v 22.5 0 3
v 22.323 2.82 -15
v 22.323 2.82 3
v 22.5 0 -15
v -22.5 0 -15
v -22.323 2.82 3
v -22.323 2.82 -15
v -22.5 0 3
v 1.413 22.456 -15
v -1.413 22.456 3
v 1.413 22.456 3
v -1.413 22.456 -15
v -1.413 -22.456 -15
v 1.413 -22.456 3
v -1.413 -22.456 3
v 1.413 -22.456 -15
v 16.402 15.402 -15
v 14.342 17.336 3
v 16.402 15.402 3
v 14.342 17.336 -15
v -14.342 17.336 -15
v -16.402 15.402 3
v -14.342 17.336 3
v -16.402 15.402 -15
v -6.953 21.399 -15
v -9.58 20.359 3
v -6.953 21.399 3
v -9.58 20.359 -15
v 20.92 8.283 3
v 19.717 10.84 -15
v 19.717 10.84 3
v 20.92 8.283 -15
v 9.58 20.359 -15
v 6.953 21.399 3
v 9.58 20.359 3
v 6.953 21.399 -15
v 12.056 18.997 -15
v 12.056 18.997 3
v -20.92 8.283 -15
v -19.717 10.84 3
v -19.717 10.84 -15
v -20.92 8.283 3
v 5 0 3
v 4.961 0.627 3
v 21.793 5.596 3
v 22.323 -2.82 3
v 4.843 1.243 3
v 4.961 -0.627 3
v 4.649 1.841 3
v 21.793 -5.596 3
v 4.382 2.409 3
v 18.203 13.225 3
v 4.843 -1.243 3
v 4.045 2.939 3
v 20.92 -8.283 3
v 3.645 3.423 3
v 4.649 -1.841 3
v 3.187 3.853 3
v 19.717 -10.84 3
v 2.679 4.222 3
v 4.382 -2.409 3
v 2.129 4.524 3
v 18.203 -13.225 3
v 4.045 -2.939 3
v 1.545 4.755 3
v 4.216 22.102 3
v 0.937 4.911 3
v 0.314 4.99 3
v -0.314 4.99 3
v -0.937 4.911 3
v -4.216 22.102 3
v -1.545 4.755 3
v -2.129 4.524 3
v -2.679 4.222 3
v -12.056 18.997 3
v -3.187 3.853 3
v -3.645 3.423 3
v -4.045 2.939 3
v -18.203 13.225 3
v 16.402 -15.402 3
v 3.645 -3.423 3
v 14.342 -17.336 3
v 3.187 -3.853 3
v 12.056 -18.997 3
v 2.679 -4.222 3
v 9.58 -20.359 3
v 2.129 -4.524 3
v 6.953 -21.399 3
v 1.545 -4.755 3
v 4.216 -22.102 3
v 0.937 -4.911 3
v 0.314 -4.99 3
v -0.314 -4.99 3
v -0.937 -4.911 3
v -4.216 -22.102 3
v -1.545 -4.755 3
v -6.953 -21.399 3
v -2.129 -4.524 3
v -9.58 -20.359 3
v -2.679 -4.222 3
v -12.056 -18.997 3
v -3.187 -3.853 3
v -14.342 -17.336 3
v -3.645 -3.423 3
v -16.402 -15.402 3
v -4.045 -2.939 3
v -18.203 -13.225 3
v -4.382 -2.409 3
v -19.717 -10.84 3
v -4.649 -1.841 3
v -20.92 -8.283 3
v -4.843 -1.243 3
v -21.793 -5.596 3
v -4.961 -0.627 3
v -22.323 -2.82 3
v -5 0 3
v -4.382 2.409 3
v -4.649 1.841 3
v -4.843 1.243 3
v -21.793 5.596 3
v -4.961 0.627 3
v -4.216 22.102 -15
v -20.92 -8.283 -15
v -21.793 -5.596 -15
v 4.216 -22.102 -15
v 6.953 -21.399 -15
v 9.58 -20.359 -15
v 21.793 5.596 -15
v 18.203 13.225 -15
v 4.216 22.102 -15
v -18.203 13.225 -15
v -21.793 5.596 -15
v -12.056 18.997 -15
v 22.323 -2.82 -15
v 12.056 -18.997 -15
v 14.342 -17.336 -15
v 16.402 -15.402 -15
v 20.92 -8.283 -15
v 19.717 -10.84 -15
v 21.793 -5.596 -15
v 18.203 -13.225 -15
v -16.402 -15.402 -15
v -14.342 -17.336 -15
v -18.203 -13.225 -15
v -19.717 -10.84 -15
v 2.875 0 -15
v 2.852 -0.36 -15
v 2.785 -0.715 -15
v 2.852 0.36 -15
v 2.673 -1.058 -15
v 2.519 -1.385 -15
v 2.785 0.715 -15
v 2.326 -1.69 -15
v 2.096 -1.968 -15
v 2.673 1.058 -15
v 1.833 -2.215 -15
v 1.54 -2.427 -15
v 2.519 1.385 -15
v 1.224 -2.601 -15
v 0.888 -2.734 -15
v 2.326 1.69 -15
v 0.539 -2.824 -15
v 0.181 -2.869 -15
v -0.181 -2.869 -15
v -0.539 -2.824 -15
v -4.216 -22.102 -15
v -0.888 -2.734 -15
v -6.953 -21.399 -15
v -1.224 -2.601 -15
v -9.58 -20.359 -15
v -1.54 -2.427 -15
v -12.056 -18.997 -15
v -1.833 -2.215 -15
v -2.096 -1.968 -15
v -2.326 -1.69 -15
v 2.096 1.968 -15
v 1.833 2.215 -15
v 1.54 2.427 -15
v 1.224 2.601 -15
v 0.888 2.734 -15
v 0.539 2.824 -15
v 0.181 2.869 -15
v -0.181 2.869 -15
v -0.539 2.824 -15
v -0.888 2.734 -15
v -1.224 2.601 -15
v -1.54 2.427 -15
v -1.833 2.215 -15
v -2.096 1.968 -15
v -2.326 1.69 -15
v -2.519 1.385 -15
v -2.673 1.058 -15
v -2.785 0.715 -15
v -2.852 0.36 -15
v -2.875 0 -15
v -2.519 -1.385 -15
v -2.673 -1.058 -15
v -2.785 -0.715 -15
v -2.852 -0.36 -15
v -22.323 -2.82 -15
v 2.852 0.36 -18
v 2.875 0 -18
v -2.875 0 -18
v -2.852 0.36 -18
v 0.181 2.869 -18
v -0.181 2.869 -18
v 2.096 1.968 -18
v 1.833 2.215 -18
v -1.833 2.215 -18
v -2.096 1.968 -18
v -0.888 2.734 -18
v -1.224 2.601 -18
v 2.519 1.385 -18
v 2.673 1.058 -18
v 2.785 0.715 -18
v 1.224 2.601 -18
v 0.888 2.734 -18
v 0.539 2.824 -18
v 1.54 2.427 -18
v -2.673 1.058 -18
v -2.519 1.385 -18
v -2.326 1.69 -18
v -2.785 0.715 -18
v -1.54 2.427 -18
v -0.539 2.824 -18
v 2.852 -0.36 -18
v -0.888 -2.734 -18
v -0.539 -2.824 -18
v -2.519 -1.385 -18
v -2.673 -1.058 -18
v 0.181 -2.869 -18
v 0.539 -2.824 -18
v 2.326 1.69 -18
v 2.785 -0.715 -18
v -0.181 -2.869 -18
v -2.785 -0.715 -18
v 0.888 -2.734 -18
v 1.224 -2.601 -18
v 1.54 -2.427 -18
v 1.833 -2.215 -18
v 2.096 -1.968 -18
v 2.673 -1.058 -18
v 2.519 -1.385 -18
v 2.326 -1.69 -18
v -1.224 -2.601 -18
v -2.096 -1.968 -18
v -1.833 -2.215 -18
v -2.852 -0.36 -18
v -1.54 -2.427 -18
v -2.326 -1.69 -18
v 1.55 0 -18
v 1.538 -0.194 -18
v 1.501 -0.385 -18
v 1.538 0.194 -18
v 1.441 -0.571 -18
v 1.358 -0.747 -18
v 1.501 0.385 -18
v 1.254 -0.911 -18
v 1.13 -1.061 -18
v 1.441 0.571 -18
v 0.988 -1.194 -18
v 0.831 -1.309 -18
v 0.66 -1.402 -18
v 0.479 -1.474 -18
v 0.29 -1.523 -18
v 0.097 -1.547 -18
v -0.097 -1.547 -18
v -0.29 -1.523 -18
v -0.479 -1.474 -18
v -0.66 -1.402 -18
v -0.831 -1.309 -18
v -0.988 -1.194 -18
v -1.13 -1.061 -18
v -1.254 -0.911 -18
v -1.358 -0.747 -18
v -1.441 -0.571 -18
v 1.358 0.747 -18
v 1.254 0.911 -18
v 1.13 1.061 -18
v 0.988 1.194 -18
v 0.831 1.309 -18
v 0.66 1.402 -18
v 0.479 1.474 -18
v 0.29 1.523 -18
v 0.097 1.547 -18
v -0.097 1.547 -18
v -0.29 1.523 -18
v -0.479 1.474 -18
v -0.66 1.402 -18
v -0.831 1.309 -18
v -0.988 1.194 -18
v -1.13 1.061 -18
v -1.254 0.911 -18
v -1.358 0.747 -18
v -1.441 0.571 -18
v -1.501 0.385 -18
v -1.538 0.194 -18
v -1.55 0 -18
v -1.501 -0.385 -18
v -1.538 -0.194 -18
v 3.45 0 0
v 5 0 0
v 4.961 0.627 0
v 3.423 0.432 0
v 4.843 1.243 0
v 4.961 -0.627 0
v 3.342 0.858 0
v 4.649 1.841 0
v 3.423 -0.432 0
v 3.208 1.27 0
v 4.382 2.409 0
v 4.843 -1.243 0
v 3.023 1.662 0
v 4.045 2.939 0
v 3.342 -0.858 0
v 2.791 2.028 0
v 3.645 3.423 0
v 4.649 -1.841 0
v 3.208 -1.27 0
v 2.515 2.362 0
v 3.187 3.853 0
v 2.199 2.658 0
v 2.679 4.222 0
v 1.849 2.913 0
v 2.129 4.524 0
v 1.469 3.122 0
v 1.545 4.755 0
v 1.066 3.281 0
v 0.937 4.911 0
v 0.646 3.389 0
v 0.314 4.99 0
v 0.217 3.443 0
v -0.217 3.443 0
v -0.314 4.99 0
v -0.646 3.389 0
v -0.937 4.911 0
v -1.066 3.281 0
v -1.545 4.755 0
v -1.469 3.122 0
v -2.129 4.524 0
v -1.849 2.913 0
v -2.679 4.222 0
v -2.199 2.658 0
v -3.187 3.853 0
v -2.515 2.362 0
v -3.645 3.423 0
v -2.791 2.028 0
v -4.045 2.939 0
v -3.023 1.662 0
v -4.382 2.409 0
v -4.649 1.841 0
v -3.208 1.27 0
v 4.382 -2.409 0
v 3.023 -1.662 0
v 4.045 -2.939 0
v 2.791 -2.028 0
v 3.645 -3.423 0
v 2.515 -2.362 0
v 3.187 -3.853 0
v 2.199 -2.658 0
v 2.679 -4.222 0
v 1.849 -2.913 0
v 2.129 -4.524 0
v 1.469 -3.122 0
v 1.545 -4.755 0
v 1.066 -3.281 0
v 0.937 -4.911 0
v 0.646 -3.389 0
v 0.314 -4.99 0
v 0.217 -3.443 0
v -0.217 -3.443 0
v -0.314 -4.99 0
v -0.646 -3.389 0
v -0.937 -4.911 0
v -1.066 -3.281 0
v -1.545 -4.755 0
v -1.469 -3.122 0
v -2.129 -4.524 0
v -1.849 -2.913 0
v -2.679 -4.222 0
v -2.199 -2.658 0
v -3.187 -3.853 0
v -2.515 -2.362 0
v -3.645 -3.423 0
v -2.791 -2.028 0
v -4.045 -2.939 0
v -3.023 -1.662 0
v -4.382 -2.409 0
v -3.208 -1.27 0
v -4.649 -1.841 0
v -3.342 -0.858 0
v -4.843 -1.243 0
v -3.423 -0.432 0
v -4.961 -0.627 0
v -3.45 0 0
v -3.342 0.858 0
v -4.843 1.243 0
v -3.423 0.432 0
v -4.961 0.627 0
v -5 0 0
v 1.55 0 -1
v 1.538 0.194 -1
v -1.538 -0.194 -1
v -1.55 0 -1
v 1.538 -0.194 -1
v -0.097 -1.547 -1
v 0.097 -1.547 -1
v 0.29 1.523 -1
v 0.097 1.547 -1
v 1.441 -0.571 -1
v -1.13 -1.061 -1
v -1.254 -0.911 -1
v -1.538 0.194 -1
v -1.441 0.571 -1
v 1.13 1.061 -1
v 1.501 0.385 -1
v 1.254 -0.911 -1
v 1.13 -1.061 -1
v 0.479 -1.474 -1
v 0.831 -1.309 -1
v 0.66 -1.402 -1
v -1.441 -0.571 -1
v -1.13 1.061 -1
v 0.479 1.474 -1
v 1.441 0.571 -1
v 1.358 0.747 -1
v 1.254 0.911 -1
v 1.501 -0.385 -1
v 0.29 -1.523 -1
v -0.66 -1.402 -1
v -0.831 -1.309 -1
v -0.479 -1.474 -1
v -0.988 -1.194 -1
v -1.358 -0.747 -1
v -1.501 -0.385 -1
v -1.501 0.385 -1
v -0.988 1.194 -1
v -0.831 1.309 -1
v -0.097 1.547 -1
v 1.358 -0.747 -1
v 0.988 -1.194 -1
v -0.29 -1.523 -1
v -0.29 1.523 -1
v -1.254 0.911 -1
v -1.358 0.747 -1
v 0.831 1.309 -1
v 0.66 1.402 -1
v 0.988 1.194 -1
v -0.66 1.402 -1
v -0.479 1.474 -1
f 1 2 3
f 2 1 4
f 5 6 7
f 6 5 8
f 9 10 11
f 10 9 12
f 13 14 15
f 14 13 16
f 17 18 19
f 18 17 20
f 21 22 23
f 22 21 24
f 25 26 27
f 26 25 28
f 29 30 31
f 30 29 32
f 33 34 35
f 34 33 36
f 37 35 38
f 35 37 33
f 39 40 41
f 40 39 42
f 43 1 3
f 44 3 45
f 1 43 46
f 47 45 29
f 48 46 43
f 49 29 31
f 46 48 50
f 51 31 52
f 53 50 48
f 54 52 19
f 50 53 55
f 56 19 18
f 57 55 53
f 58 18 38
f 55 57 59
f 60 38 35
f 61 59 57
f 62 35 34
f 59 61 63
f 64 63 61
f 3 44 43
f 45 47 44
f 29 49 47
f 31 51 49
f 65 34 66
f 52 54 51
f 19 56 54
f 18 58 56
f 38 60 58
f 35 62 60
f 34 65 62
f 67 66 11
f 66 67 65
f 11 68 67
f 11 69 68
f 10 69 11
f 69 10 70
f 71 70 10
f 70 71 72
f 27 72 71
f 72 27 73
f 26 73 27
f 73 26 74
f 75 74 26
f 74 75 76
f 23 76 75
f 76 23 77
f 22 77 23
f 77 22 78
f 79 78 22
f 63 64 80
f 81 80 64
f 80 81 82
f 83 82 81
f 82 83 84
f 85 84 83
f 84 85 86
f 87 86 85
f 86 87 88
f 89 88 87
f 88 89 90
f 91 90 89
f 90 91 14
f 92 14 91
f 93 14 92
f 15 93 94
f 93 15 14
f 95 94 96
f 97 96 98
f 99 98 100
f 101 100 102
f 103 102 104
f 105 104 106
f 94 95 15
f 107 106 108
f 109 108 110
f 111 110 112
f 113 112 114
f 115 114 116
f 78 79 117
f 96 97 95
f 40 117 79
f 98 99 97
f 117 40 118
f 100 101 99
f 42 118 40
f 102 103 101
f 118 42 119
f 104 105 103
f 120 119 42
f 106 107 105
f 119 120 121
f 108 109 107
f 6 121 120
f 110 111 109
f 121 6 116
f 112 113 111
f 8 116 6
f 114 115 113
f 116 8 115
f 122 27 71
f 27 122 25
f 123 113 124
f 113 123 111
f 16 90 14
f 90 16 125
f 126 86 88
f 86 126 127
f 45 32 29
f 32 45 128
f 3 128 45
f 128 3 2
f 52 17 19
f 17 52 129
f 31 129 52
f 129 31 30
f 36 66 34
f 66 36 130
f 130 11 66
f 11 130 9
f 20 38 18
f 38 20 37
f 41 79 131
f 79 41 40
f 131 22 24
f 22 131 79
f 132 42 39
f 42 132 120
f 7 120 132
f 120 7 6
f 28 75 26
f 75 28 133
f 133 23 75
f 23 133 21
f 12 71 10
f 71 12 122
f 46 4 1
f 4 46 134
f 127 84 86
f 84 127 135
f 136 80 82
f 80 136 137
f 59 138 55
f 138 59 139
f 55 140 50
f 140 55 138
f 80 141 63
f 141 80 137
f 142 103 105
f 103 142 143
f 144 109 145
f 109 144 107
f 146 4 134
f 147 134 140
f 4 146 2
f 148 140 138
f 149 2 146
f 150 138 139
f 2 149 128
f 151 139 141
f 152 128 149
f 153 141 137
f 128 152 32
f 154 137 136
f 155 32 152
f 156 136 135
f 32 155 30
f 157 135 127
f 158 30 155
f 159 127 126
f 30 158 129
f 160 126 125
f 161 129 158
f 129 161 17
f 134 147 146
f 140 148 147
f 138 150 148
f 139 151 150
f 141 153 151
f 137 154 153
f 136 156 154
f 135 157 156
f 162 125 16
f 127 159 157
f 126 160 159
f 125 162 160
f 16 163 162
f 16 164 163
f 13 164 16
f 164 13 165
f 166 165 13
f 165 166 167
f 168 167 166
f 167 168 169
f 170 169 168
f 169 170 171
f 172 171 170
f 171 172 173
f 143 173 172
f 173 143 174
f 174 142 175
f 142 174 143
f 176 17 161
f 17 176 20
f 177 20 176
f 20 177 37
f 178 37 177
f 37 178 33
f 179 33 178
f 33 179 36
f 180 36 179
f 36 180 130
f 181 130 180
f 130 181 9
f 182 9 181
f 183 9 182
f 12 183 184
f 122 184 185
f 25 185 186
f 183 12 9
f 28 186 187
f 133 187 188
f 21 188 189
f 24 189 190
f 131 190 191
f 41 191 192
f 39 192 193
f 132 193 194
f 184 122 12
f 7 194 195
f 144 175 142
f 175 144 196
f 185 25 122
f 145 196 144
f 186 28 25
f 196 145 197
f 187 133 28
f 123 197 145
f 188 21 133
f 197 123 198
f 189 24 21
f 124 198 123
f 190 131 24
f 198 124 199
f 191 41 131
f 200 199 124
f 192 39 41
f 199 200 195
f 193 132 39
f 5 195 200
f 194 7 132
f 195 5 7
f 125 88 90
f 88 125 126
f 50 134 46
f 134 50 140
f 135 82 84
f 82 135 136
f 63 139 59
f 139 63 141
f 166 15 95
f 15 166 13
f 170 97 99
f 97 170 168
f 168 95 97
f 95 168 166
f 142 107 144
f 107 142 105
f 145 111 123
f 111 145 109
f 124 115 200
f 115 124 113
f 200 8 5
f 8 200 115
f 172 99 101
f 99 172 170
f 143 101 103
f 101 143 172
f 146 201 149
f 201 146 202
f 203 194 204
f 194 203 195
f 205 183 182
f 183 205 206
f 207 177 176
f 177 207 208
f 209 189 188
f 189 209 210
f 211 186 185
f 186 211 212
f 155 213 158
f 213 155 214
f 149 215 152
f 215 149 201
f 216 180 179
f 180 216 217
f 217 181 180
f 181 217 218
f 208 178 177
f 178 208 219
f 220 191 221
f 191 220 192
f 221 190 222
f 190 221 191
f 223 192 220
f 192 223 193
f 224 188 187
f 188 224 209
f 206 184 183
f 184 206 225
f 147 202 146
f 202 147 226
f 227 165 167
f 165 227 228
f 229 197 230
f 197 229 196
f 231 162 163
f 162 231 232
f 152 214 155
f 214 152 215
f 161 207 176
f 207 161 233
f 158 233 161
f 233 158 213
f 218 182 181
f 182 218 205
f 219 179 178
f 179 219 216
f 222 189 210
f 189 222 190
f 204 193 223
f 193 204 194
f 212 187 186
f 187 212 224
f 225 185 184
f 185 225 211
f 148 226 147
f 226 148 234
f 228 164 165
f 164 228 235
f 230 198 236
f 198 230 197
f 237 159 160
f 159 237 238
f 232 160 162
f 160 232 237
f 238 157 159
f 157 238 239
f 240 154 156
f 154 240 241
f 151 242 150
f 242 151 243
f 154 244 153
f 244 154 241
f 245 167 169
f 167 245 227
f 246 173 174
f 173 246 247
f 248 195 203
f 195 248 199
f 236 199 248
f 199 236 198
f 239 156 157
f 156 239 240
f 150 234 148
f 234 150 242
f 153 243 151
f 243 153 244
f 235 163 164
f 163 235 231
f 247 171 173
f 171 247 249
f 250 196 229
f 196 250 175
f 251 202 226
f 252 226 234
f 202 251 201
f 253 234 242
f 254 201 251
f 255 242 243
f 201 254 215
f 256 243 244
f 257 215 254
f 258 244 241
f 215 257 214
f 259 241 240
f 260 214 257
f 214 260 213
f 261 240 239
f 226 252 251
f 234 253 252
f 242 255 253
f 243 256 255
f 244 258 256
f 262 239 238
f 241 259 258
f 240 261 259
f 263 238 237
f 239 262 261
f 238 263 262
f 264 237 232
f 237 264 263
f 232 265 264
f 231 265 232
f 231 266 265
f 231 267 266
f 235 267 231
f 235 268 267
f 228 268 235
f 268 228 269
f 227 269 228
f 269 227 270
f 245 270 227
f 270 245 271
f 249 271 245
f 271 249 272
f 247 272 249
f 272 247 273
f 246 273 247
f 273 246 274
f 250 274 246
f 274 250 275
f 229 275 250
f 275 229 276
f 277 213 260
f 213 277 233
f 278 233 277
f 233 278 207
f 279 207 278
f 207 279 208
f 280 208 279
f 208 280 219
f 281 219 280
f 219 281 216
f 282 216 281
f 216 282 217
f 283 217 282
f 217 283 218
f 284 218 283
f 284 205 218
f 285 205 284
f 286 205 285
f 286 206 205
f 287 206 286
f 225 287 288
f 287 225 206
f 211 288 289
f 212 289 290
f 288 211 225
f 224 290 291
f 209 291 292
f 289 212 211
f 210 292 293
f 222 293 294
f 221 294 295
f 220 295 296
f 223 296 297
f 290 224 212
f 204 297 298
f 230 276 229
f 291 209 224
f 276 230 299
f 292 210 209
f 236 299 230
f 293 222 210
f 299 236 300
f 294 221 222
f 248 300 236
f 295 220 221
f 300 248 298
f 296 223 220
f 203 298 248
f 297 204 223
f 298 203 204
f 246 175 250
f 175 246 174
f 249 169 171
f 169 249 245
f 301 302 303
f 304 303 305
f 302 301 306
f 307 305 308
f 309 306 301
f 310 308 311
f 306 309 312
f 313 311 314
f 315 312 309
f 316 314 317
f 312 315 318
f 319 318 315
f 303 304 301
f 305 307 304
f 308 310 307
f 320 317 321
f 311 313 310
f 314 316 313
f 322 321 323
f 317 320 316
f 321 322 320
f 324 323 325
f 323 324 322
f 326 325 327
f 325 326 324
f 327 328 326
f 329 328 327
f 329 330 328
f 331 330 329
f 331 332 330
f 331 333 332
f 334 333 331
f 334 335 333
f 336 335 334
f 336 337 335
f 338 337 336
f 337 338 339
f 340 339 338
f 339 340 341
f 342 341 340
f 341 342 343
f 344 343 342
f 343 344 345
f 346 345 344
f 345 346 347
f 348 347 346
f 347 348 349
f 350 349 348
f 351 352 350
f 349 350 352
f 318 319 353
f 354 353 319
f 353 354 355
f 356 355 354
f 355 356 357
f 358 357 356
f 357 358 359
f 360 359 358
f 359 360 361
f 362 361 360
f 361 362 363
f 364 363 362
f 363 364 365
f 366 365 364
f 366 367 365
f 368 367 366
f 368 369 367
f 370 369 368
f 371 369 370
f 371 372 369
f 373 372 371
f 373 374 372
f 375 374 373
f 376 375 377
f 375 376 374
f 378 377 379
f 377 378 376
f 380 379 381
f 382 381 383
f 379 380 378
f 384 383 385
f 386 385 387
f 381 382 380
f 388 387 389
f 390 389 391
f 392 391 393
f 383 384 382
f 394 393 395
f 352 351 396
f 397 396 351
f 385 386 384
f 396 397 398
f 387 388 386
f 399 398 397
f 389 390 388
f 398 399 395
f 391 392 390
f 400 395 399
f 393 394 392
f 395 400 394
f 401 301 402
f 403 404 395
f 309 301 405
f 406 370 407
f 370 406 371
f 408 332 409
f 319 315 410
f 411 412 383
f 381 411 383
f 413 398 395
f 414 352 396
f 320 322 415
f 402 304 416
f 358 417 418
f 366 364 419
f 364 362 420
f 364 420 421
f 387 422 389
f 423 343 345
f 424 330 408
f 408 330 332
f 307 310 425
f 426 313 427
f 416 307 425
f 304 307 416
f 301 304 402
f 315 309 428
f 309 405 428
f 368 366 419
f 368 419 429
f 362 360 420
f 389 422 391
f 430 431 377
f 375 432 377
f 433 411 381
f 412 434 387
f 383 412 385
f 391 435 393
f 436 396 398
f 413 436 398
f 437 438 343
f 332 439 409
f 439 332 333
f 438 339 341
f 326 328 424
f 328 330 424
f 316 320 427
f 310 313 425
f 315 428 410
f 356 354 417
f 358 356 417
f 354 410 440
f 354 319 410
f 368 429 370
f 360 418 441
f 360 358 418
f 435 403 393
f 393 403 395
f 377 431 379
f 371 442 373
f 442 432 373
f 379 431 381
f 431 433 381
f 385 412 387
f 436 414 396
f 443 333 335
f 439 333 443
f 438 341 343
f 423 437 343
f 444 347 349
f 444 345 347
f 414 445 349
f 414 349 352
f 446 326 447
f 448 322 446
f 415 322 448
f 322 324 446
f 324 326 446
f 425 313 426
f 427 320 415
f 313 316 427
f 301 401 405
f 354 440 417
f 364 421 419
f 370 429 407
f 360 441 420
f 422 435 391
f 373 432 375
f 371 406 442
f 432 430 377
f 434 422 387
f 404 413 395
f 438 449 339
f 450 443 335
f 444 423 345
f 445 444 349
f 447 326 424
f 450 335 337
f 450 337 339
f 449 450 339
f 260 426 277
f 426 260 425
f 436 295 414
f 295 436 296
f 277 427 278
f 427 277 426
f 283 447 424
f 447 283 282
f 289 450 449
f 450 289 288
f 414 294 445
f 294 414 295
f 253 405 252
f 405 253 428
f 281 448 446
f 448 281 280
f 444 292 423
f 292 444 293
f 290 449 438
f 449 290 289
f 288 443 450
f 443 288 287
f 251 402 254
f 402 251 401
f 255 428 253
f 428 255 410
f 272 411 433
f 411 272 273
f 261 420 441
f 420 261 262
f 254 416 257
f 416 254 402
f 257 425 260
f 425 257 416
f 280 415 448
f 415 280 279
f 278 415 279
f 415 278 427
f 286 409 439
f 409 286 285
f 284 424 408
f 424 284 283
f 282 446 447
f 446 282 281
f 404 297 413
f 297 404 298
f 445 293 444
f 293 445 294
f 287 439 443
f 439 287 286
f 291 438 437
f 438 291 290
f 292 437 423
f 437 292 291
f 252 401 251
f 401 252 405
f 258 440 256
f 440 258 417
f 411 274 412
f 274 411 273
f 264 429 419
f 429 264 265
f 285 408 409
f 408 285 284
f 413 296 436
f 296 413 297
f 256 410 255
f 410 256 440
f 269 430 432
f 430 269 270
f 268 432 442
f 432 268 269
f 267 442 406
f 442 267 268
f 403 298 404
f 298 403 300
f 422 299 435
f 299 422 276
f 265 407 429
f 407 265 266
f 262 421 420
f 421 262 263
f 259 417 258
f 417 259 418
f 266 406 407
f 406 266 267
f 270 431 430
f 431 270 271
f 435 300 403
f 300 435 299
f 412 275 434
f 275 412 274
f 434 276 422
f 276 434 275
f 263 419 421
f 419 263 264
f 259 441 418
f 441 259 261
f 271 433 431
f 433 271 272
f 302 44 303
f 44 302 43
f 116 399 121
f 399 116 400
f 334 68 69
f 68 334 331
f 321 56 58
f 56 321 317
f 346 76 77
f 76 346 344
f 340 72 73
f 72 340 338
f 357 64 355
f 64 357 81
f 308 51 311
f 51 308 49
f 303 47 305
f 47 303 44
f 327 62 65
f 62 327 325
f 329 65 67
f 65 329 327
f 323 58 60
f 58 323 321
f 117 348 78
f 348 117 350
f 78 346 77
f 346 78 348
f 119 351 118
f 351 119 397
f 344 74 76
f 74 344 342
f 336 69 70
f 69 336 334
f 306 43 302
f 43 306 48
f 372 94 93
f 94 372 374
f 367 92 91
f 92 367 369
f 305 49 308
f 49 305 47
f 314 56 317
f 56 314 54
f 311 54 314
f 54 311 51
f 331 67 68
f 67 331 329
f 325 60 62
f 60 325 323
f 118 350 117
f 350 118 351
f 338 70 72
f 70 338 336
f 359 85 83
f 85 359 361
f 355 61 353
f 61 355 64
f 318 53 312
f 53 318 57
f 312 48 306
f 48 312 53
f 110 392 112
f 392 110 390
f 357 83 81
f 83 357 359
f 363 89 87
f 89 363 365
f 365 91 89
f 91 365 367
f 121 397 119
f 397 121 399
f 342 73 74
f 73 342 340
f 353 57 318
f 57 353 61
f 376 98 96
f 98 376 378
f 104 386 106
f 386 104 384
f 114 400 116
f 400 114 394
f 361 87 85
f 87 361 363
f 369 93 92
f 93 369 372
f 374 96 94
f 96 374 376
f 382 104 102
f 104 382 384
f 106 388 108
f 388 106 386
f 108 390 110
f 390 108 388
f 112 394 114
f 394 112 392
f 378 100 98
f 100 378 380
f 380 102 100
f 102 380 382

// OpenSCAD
$fn = 50;

difference() {
	union() {
		translate(v = [0, 0, -15.0]) {
			cylinder(h = 18, r = 22.5);
		}
		#translate(v = [0, 0, -18.0]) {
			cylinder(h = 18, r = 2.875);
		}
	}
	union() {
		translate(v = [0, 0, 0]) {
			rotate(a = [0, 0, 0]) {
				difference() {
					union() {
						translate(v = [0, 0, -18.0]) {
							cylinder(h = 18, r = 1.25);
						}
						translate(v = [0, 0, -1.0]) {
							cylinder(h = 1.0, r1 = 1.55, r2 = 3.45);
						}
						translate(v = [0, 0, -18.0]) {
							cylinder(h = 18, r = 1.55);
						}
						translate(v = [0, 0, -18.0]) {
							cylinder(h = 18, r = 1.25);
						}
					}
					union();
				}
			}
		}
		#cylinder(h = 3, r = 5.0);
	}
}
